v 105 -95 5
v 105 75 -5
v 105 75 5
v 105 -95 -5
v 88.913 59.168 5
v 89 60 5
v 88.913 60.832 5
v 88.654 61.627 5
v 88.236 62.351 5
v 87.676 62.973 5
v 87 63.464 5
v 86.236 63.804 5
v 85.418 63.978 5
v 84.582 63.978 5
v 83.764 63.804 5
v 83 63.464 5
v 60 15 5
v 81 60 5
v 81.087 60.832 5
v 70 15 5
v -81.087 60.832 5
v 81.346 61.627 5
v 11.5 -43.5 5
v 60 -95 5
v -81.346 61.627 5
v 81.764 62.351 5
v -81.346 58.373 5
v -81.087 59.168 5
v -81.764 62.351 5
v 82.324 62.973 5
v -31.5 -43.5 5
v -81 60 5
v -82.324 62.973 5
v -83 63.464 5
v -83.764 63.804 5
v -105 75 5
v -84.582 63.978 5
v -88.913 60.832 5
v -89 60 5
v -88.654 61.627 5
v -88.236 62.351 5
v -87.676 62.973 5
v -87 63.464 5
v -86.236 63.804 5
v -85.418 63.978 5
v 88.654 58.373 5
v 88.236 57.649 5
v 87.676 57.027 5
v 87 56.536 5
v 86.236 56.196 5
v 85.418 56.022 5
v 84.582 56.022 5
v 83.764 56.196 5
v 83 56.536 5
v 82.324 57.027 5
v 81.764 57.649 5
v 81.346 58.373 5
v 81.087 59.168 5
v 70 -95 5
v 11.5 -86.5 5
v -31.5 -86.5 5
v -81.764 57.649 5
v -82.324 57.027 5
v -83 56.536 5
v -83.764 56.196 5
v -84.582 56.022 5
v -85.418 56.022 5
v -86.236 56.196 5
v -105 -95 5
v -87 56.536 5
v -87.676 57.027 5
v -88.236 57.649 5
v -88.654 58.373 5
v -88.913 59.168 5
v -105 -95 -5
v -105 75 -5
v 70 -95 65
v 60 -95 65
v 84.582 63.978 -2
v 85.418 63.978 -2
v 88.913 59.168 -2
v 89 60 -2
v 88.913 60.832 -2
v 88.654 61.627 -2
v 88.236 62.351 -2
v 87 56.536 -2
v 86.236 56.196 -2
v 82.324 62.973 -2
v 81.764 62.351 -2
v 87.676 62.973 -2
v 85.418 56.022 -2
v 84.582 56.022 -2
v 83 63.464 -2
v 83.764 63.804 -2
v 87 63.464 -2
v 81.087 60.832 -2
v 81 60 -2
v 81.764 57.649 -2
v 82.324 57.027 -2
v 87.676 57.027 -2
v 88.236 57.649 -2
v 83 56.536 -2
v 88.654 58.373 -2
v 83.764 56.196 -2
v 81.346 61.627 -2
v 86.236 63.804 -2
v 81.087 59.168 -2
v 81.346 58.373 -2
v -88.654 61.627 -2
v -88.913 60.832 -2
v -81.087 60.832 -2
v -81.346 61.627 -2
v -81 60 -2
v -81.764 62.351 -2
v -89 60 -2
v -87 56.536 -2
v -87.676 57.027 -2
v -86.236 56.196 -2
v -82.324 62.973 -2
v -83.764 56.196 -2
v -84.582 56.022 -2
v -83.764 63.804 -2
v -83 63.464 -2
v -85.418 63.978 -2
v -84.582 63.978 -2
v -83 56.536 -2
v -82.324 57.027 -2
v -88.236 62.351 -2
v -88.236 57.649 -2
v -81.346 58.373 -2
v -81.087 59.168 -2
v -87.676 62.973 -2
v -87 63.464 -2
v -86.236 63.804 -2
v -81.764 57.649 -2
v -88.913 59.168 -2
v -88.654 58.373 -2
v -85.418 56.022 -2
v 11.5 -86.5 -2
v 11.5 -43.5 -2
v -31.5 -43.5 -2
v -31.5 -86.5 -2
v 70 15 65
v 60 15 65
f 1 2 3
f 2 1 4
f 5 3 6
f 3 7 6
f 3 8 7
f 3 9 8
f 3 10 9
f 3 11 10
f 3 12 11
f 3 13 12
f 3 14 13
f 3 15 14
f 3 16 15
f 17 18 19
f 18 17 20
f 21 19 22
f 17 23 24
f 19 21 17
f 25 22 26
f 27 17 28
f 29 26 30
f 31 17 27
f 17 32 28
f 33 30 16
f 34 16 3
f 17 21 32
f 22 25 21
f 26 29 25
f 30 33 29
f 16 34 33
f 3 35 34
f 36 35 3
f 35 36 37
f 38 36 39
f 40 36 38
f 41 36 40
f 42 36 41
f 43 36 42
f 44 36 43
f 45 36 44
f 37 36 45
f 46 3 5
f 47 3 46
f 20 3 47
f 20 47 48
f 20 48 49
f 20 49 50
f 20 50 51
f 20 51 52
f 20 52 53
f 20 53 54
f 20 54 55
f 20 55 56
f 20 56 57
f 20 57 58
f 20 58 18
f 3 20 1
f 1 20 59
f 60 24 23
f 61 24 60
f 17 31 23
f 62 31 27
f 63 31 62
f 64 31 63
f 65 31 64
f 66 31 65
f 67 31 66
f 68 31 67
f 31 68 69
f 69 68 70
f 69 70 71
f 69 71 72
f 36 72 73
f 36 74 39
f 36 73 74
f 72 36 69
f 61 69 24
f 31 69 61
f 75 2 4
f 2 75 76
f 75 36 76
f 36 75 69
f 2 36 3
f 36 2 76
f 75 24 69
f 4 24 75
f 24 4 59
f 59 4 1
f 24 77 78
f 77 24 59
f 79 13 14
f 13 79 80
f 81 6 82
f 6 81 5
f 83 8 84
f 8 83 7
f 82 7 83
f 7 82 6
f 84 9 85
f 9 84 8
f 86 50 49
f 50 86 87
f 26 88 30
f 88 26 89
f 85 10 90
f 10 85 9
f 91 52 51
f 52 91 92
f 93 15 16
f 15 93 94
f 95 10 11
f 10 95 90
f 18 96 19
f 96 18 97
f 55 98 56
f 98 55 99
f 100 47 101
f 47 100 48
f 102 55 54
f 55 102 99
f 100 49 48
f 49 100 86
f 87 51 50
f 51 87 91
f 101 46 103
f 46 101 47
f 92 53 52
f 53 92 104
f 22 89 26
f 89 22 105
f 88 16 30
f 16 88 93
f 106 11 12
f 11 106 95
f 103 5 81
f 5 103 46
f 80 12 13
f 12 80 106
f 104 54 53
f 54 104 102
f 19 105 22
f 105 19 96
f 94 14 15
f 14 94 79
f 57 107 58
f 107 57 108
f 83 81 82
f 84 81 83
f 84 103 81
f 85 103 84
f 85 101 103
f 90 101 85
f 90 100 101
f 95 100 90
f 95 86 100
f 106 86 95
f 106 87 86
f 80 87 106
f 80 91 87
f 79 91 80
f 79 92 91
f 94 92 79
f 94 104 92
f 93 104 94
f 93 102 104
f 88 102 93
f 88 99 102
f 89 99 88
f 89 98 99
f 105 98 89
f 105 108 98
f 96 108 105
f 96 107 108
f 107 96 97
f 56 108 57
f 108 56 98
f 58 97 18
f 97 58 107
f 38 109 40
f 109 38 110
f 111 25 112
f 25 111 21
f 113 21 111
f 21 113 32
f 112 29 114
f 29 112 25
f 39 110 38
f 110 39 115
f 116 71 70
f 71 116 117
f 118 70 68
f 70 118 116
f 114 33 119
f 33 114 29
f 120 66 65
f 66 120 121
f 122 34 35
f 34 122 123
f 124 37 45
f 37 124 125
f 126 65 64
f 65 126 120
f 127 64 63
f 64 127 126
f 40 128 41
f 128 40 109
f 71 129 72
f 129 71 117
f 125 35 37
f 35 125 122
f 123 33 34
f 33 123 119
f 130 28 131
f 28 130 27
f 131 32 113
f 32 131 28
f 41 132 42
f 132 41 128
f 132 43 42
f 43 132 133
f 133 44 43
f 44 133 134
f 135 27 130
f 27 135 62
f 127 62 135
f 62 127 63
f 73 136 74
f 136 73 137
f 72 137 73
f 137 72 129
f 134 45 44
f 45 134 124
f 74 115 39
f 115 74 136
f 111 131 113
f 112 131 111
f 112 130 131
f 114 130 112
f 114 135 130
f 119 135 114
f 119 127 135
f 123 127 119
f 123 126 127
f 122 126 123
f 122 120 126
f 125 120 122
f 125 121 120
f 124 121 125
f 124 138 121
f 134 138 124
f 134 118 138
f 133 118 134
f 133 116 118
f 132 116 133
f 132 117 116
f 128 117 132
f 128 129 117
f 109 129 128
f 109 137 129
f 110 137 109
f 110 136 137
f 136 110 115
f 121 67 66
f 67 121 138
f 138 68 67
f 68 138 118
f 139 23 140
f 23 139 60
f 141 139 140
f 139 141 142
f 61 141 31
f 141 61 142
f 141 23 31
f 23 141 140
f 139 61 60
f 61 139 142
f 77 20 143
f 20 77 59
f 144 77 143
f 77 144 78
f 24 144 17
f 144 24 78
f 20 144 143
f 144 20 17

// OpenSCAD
// Multi_Tissue_Recording Base v1
// Jack F. Murphy <me@jackmurphy.nyc>
// https://github.com/teammurphy/Multi_Tissue_CAD

// Smoothness
$fn = 30;

// Stage Dimensions
stage_len=210;
stage_width=170;
stage_thickness=10;

// Hole Dimensions
rod=8;


difference() {
  translate([0, -10, 0])  
    cube([stage_len, stage_width, stage_thickness], center=true);

  // Rod Holes
  translate([85, 60, 3])
    cylinder(d=rod, h=stage_thickness, center=true);
  translate([-85, 60, 3])
    cylinder(d=rod, h=stage_thickness, center=true);
    
  translate([-10, -65, 3]){
    cube([43, 43, stage_thickness], center=true);
  }
}

// Creates Insert for Pi to Stand Against
translate([60, -95, 5])
  cube([10, 110, 60]);

    
